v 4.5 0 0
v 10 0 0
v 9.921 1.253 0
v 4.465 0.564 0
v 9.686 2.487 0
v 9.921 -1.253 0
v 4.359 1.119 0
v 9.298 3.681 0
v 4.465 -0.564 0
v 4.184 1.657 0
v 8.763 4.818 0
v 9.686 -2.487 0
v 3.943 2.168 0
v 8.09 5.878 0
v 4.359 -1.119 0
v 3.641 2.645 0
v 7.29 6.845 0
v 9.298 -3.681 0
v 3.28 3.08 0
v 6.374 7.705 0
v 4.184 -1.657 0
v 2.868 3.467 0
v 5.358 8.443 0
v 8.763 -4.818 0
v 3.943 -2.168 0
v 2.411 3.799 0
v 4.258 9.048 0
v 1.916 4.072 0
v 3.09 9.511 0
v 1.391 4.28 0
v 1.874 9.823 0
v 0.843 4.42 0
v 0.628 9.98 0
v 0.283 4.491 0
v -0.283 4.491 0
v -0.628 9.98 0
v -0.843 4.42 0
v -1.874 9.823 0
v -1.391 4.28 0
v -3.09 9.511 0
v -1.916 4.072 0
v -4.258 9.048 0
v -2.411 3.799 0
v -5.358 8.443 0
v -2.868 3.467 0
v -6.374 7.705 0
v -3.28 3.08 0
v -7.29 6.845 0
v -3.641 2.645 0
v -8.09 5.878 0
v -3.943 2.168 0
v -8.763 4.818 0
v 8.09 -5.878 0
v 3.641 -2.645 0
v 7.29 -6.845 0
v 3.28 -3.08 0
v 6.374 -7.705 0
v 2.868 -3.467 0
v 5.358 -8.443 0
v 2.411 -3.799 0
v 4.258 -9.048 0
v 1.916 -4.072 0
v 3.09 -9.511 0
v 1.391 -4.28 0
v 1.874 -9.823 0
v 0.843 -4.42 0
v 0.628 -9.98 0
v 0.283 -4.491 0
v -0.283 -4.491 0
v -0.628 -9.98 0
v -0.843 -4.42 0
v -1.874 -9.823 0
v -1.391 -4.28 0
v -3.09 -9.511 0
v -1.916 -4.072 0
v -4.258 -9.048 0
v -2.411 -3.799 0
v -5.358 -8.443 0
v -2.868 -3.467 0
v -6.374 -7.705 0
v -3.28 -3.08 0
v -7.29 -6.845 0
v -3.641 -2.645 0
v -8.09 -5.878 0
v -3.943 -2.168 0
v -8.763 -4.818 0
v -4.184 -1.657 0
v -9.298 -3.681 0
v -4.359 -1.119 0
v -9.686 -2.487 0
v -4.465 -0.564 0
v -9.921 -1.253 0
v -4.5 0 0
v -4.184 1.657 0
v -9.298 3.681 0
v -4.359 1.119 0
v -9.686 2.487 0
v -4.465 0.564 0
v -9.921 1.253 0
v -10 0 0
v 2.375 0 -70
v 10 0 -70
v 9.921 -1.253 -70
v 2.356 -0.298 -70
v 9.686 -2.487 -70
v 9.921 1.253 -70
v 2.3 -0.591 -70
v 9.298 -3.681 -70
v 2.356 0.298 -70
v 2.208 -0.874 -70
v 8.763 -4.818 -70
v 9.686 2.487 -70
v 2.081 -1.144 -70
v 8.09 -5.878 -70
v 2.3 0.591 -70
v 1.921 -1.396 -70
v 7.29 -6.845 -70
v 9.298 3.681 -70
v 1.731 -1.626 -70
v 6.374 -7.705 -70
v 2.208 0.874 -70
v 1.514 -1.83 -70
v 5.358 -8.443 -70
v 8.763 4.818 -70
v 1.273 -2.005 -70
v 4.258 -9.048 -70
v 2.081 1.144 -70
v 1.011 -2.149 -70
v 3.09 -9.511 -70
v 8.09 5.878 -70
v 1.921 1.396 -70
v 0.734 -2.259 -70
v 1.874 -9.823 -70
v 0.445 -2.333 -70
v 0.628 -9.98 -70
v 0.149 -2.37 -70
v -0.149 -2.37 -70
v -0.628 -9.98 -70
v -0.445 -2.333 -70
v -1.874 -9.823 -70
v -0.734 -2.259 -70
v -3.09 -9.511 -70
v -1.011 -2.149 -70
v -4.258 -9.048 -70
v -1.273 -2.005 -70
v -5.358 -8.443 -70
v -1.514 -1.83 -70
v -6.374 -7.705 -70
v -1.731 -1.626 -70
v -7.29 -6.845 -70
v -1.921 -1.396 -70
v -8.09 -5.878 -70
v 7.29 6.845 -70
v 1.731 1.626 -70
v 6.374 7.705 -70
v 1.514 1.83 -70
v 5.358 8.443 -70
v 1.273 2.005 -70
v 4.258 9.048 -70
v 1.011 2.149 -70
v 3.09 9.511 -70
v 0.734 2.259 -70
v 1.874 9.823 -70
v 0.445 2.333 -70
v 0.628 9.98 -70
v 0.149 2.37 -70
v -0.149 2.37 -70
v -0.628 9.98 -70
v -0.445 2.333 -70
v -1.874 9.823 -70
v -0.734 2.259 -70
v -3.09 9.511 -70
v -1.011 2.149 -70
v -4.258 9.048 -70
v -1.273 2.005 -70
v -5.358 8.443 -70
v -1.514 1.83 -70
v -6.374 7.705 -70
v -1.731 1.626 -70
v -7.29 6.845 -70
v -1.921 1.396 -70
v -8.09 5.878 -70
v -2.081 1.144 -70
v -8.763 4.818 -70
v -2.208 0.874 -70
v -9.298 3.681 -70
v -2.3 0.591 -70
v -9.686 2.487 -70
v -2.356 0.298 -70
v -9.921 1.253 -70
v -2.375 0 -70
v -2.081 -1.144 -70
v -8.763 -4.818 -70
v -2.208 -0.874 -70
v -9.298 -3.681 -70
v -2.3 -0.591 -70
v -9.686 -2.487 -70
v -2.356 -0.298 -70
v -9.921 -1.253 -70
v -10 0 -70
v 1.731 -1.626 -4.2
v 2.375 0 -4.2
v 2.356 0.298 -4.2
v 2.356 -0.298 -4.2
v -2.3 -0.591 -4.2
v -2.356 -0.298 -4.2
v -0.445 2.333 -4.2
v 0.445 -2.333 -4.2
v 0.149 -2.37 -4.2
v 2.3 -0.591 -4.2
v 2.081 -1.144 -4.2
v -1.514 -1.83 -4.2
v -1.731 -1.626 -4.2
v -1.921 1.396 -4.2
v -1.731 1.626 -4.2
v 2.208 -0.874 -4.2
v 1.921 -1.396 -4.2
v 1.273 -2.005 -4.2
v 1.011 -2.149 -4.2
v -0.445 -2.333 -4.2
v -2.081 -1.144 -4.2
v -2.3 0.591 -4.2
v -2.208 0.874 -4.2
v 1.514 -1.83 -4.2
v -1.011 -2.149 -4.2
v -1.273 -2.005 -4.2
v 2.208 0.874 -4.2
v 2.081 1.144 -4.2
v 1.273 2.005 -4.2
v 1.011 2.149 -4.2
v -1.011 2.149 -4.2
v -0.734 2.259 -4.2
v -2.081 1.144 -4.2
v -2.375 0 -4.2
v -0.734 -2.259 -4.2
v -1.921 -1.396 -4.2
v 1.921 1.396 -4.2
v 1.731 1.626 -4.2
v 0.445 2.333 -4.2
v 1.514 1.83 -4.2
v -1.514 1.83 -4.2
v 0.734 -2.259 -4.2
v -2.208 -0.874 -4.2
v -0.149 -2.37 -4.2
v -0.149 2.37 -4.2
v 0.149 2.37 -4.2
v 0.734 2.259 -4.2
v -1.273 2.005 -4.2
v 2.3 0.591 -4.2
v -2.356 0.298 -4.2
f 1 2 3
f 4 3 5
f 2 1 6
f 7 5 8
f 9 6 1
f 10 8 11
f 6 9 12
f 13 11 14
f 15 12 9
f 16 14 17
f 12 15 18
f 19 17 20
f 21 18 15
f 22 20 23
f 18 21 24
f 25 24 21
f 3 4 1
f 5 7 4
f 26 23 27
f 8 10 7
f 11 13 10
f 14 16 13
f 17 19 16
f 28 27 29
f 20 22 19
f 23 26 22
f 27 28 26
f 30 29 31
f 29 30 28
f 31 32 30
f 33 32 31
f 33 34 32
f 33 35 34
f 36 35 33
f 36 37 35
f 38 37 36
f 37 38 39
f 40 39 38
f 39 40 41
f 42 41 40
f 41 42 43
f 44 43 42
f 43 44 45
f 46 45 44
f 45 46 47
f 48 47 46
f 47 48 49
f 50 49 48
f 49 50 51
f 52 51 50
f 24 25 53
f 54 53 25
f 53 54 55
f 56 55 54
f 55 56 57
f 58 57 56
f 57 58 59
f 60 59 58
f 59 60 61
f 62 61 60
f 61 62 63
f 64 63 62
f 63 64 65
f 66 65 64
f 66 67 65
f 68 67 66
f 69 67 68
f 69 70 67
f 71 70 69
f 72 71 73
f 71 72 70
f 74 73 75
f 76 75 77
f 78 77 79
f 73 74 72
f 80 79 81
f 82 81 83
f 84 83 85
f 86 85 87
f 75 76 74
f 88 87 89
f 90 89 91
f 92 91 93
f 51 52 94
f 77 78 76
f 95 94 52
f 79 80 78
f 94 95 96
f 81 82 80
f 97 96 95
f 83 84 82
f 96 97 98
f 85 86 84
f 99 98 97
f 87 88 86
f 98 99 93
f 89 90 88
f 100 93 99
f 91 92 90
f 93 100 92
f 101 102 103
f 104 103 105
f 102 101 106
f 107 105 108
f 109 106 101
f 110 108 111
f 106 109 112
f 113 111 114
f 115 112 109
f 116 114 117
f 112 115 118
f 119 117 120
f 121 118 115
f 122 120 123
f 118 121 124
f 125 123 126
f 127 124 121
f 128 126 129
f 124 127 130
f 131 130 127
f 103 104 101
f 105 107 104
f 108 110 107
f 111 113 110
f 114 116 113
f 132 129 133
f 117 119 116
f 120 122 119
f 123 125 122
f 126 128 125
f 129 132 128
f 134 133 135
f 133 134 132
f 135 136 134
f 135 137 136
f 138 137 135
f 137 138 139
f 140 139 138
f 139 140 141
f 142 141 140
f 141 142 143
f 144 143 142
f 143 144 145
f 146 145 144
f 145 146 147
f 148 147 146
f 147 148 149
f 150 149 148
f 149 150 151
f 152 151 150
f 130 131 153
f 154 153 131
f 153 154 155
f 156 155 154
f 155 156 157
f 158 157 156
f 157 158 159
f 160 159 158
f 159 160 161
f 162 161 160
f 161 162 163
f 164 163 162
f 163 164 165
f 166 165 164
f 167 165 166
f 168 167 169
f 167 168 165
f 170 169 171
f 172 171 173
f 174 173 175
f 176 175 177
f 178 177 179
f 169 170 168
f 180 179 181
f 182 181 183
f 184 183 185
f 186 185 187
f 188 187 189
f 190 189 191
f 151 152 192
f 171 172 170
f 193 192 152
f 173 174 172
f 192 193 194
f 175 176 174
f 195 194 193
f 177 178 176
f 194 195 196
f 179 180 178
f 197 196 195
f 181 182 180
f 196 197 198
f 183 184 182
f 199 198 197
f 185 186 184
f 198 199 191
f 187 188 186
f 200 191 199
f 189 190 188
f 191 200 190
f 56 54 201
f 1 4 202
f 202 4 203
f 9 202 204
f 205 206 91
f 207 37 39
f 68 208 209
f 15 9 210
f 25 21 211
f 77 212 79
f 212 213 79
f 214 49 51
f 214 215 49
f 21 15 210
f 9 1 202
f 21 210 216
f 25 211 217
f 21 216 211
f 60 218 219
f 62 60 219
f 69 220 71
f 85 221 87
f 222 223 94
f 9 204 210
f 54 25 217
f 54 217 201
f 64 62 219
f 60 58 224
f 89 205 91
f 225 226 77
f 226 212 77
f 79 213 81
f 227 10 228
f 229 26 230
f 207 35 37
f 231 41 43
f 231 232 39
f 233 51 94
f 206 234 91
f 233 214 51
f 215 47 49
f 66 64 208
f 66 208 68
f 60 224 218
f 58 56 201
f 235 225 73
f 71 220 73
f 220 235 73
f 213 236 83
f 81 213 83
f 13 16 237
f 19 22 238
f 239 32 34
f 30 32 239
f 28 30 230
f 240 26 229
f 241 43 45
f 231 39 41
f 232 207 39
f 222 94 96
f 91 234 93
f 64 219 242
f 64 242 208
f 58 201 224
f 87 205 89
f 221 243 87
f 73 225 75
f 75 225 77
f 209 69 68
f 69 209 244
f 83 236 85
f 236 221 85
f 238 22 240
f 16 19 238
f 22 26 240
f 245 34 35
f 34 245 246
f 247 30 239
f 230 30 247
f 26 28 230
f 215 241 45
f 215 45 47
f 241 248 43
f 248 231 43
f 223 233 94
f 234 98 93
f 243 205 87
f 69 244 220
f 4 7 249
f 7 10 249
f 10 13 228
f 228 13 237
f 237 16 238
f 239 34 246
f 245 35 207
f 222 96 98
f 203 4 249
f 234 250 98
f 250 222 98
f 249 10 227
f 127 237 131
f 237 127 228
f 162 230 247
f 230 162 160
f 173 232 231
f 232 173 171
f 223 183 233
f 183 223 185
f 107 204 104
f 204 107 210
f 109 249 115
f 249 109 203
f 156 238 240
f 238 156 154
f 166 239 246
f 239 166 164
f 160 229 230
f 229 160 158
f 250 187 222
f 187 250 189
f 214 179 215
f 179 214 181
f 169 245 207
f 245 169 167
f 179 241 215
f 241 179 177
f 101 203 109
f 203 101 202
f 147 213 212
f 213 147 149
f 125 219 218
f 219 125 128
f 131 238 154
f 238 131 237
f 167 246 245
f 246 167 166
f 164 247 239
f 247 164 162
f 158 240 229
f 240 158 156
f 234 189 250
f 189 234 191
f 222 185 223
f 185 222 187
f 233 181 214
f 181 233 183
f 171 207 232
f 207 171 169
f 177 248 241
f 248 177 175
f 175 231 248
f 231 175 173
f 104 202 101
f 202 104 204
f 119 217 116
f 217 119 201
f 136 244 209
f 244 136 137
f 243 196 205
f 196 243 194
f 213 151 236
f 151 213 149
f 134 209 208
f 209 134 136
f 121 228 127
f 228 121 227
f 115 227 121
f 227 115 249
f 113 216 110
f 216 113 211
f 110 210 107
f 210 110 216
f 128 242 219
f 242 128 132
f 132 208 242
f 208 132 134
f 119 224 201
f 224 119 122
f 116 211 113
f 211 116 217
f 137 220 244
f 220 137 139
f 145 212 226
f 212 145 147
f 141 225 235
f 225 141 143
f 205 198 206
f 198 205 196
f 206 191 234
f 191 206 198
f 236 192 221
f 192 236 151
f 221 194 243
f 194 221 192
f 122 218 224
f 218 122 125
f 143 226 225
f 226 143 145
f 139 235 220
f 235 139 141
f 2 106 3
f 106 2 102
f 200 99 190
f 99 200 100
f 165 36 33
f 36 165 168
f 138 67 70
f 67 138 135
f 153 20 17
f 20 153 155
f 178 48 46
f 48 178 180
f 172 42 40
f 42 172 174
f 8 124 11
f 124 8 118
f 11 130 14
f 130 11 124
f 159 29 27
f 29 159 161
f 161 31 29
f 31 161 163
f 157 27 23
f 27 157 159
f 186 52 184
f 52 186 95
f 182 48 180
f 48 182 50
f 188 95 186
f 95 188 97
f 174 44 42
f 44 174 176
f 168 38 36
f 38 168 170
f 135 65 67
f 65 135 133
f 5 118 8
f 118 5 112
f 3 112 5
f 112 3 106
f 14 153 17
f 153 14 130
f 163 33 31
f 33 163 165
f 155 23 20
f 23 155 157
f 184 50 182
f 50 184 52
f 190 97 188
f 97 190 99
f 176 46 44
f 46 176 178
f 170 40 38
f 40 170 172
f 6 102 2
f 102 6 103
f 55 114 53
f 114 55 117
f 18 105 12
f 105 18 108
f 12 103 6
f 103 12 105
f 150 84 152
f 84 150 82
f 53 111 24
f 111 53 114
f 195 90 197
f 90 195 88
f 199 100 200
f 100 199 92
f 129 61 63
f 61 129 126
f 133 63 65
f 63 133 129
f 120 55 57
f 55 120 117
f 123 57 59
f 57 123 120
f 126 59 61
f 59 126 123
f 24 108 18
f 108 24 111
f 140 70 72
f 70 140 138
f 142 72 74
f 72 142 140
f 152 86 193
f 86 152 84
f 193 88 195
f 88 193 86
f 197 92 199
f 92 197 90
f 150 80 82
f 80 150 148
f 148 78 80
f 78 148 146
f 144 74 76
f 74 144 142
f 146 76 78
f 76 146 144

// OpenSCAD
$fn = 50;


difference() {
	union() {
		translate(v = [0, 0, -70.0000000000]) {
			cylinder(h = 70, r = 10.0000000000);
		}
	}
	union() {
		translate(v = [0, 0, 0]) {
			rotate(a = [0, 0, 0]) {
				difference() {
					union() {
						#translate(v = [0, 0, -70.0000000000]) {
							cylinder(h = 70, r = 2.2500000000);
						}
						#translate(v = [0, 0, -4.2000000000]) {
							cylinder(h = 4.2000000000, r1 = 2.3750000000, r2 = 4.5000000000);
						}
						#translate(v = [0, 0, -70.0000000000]) {
							cylinder(h = 70, r = 2.3750000000);
						}
						#translate(v = [0, 0, -70.0000000000]) {
							cylinder(h = 70, r = 2.2500000000);
						}
					}
					union();
				}
			}
		}
	}
}
